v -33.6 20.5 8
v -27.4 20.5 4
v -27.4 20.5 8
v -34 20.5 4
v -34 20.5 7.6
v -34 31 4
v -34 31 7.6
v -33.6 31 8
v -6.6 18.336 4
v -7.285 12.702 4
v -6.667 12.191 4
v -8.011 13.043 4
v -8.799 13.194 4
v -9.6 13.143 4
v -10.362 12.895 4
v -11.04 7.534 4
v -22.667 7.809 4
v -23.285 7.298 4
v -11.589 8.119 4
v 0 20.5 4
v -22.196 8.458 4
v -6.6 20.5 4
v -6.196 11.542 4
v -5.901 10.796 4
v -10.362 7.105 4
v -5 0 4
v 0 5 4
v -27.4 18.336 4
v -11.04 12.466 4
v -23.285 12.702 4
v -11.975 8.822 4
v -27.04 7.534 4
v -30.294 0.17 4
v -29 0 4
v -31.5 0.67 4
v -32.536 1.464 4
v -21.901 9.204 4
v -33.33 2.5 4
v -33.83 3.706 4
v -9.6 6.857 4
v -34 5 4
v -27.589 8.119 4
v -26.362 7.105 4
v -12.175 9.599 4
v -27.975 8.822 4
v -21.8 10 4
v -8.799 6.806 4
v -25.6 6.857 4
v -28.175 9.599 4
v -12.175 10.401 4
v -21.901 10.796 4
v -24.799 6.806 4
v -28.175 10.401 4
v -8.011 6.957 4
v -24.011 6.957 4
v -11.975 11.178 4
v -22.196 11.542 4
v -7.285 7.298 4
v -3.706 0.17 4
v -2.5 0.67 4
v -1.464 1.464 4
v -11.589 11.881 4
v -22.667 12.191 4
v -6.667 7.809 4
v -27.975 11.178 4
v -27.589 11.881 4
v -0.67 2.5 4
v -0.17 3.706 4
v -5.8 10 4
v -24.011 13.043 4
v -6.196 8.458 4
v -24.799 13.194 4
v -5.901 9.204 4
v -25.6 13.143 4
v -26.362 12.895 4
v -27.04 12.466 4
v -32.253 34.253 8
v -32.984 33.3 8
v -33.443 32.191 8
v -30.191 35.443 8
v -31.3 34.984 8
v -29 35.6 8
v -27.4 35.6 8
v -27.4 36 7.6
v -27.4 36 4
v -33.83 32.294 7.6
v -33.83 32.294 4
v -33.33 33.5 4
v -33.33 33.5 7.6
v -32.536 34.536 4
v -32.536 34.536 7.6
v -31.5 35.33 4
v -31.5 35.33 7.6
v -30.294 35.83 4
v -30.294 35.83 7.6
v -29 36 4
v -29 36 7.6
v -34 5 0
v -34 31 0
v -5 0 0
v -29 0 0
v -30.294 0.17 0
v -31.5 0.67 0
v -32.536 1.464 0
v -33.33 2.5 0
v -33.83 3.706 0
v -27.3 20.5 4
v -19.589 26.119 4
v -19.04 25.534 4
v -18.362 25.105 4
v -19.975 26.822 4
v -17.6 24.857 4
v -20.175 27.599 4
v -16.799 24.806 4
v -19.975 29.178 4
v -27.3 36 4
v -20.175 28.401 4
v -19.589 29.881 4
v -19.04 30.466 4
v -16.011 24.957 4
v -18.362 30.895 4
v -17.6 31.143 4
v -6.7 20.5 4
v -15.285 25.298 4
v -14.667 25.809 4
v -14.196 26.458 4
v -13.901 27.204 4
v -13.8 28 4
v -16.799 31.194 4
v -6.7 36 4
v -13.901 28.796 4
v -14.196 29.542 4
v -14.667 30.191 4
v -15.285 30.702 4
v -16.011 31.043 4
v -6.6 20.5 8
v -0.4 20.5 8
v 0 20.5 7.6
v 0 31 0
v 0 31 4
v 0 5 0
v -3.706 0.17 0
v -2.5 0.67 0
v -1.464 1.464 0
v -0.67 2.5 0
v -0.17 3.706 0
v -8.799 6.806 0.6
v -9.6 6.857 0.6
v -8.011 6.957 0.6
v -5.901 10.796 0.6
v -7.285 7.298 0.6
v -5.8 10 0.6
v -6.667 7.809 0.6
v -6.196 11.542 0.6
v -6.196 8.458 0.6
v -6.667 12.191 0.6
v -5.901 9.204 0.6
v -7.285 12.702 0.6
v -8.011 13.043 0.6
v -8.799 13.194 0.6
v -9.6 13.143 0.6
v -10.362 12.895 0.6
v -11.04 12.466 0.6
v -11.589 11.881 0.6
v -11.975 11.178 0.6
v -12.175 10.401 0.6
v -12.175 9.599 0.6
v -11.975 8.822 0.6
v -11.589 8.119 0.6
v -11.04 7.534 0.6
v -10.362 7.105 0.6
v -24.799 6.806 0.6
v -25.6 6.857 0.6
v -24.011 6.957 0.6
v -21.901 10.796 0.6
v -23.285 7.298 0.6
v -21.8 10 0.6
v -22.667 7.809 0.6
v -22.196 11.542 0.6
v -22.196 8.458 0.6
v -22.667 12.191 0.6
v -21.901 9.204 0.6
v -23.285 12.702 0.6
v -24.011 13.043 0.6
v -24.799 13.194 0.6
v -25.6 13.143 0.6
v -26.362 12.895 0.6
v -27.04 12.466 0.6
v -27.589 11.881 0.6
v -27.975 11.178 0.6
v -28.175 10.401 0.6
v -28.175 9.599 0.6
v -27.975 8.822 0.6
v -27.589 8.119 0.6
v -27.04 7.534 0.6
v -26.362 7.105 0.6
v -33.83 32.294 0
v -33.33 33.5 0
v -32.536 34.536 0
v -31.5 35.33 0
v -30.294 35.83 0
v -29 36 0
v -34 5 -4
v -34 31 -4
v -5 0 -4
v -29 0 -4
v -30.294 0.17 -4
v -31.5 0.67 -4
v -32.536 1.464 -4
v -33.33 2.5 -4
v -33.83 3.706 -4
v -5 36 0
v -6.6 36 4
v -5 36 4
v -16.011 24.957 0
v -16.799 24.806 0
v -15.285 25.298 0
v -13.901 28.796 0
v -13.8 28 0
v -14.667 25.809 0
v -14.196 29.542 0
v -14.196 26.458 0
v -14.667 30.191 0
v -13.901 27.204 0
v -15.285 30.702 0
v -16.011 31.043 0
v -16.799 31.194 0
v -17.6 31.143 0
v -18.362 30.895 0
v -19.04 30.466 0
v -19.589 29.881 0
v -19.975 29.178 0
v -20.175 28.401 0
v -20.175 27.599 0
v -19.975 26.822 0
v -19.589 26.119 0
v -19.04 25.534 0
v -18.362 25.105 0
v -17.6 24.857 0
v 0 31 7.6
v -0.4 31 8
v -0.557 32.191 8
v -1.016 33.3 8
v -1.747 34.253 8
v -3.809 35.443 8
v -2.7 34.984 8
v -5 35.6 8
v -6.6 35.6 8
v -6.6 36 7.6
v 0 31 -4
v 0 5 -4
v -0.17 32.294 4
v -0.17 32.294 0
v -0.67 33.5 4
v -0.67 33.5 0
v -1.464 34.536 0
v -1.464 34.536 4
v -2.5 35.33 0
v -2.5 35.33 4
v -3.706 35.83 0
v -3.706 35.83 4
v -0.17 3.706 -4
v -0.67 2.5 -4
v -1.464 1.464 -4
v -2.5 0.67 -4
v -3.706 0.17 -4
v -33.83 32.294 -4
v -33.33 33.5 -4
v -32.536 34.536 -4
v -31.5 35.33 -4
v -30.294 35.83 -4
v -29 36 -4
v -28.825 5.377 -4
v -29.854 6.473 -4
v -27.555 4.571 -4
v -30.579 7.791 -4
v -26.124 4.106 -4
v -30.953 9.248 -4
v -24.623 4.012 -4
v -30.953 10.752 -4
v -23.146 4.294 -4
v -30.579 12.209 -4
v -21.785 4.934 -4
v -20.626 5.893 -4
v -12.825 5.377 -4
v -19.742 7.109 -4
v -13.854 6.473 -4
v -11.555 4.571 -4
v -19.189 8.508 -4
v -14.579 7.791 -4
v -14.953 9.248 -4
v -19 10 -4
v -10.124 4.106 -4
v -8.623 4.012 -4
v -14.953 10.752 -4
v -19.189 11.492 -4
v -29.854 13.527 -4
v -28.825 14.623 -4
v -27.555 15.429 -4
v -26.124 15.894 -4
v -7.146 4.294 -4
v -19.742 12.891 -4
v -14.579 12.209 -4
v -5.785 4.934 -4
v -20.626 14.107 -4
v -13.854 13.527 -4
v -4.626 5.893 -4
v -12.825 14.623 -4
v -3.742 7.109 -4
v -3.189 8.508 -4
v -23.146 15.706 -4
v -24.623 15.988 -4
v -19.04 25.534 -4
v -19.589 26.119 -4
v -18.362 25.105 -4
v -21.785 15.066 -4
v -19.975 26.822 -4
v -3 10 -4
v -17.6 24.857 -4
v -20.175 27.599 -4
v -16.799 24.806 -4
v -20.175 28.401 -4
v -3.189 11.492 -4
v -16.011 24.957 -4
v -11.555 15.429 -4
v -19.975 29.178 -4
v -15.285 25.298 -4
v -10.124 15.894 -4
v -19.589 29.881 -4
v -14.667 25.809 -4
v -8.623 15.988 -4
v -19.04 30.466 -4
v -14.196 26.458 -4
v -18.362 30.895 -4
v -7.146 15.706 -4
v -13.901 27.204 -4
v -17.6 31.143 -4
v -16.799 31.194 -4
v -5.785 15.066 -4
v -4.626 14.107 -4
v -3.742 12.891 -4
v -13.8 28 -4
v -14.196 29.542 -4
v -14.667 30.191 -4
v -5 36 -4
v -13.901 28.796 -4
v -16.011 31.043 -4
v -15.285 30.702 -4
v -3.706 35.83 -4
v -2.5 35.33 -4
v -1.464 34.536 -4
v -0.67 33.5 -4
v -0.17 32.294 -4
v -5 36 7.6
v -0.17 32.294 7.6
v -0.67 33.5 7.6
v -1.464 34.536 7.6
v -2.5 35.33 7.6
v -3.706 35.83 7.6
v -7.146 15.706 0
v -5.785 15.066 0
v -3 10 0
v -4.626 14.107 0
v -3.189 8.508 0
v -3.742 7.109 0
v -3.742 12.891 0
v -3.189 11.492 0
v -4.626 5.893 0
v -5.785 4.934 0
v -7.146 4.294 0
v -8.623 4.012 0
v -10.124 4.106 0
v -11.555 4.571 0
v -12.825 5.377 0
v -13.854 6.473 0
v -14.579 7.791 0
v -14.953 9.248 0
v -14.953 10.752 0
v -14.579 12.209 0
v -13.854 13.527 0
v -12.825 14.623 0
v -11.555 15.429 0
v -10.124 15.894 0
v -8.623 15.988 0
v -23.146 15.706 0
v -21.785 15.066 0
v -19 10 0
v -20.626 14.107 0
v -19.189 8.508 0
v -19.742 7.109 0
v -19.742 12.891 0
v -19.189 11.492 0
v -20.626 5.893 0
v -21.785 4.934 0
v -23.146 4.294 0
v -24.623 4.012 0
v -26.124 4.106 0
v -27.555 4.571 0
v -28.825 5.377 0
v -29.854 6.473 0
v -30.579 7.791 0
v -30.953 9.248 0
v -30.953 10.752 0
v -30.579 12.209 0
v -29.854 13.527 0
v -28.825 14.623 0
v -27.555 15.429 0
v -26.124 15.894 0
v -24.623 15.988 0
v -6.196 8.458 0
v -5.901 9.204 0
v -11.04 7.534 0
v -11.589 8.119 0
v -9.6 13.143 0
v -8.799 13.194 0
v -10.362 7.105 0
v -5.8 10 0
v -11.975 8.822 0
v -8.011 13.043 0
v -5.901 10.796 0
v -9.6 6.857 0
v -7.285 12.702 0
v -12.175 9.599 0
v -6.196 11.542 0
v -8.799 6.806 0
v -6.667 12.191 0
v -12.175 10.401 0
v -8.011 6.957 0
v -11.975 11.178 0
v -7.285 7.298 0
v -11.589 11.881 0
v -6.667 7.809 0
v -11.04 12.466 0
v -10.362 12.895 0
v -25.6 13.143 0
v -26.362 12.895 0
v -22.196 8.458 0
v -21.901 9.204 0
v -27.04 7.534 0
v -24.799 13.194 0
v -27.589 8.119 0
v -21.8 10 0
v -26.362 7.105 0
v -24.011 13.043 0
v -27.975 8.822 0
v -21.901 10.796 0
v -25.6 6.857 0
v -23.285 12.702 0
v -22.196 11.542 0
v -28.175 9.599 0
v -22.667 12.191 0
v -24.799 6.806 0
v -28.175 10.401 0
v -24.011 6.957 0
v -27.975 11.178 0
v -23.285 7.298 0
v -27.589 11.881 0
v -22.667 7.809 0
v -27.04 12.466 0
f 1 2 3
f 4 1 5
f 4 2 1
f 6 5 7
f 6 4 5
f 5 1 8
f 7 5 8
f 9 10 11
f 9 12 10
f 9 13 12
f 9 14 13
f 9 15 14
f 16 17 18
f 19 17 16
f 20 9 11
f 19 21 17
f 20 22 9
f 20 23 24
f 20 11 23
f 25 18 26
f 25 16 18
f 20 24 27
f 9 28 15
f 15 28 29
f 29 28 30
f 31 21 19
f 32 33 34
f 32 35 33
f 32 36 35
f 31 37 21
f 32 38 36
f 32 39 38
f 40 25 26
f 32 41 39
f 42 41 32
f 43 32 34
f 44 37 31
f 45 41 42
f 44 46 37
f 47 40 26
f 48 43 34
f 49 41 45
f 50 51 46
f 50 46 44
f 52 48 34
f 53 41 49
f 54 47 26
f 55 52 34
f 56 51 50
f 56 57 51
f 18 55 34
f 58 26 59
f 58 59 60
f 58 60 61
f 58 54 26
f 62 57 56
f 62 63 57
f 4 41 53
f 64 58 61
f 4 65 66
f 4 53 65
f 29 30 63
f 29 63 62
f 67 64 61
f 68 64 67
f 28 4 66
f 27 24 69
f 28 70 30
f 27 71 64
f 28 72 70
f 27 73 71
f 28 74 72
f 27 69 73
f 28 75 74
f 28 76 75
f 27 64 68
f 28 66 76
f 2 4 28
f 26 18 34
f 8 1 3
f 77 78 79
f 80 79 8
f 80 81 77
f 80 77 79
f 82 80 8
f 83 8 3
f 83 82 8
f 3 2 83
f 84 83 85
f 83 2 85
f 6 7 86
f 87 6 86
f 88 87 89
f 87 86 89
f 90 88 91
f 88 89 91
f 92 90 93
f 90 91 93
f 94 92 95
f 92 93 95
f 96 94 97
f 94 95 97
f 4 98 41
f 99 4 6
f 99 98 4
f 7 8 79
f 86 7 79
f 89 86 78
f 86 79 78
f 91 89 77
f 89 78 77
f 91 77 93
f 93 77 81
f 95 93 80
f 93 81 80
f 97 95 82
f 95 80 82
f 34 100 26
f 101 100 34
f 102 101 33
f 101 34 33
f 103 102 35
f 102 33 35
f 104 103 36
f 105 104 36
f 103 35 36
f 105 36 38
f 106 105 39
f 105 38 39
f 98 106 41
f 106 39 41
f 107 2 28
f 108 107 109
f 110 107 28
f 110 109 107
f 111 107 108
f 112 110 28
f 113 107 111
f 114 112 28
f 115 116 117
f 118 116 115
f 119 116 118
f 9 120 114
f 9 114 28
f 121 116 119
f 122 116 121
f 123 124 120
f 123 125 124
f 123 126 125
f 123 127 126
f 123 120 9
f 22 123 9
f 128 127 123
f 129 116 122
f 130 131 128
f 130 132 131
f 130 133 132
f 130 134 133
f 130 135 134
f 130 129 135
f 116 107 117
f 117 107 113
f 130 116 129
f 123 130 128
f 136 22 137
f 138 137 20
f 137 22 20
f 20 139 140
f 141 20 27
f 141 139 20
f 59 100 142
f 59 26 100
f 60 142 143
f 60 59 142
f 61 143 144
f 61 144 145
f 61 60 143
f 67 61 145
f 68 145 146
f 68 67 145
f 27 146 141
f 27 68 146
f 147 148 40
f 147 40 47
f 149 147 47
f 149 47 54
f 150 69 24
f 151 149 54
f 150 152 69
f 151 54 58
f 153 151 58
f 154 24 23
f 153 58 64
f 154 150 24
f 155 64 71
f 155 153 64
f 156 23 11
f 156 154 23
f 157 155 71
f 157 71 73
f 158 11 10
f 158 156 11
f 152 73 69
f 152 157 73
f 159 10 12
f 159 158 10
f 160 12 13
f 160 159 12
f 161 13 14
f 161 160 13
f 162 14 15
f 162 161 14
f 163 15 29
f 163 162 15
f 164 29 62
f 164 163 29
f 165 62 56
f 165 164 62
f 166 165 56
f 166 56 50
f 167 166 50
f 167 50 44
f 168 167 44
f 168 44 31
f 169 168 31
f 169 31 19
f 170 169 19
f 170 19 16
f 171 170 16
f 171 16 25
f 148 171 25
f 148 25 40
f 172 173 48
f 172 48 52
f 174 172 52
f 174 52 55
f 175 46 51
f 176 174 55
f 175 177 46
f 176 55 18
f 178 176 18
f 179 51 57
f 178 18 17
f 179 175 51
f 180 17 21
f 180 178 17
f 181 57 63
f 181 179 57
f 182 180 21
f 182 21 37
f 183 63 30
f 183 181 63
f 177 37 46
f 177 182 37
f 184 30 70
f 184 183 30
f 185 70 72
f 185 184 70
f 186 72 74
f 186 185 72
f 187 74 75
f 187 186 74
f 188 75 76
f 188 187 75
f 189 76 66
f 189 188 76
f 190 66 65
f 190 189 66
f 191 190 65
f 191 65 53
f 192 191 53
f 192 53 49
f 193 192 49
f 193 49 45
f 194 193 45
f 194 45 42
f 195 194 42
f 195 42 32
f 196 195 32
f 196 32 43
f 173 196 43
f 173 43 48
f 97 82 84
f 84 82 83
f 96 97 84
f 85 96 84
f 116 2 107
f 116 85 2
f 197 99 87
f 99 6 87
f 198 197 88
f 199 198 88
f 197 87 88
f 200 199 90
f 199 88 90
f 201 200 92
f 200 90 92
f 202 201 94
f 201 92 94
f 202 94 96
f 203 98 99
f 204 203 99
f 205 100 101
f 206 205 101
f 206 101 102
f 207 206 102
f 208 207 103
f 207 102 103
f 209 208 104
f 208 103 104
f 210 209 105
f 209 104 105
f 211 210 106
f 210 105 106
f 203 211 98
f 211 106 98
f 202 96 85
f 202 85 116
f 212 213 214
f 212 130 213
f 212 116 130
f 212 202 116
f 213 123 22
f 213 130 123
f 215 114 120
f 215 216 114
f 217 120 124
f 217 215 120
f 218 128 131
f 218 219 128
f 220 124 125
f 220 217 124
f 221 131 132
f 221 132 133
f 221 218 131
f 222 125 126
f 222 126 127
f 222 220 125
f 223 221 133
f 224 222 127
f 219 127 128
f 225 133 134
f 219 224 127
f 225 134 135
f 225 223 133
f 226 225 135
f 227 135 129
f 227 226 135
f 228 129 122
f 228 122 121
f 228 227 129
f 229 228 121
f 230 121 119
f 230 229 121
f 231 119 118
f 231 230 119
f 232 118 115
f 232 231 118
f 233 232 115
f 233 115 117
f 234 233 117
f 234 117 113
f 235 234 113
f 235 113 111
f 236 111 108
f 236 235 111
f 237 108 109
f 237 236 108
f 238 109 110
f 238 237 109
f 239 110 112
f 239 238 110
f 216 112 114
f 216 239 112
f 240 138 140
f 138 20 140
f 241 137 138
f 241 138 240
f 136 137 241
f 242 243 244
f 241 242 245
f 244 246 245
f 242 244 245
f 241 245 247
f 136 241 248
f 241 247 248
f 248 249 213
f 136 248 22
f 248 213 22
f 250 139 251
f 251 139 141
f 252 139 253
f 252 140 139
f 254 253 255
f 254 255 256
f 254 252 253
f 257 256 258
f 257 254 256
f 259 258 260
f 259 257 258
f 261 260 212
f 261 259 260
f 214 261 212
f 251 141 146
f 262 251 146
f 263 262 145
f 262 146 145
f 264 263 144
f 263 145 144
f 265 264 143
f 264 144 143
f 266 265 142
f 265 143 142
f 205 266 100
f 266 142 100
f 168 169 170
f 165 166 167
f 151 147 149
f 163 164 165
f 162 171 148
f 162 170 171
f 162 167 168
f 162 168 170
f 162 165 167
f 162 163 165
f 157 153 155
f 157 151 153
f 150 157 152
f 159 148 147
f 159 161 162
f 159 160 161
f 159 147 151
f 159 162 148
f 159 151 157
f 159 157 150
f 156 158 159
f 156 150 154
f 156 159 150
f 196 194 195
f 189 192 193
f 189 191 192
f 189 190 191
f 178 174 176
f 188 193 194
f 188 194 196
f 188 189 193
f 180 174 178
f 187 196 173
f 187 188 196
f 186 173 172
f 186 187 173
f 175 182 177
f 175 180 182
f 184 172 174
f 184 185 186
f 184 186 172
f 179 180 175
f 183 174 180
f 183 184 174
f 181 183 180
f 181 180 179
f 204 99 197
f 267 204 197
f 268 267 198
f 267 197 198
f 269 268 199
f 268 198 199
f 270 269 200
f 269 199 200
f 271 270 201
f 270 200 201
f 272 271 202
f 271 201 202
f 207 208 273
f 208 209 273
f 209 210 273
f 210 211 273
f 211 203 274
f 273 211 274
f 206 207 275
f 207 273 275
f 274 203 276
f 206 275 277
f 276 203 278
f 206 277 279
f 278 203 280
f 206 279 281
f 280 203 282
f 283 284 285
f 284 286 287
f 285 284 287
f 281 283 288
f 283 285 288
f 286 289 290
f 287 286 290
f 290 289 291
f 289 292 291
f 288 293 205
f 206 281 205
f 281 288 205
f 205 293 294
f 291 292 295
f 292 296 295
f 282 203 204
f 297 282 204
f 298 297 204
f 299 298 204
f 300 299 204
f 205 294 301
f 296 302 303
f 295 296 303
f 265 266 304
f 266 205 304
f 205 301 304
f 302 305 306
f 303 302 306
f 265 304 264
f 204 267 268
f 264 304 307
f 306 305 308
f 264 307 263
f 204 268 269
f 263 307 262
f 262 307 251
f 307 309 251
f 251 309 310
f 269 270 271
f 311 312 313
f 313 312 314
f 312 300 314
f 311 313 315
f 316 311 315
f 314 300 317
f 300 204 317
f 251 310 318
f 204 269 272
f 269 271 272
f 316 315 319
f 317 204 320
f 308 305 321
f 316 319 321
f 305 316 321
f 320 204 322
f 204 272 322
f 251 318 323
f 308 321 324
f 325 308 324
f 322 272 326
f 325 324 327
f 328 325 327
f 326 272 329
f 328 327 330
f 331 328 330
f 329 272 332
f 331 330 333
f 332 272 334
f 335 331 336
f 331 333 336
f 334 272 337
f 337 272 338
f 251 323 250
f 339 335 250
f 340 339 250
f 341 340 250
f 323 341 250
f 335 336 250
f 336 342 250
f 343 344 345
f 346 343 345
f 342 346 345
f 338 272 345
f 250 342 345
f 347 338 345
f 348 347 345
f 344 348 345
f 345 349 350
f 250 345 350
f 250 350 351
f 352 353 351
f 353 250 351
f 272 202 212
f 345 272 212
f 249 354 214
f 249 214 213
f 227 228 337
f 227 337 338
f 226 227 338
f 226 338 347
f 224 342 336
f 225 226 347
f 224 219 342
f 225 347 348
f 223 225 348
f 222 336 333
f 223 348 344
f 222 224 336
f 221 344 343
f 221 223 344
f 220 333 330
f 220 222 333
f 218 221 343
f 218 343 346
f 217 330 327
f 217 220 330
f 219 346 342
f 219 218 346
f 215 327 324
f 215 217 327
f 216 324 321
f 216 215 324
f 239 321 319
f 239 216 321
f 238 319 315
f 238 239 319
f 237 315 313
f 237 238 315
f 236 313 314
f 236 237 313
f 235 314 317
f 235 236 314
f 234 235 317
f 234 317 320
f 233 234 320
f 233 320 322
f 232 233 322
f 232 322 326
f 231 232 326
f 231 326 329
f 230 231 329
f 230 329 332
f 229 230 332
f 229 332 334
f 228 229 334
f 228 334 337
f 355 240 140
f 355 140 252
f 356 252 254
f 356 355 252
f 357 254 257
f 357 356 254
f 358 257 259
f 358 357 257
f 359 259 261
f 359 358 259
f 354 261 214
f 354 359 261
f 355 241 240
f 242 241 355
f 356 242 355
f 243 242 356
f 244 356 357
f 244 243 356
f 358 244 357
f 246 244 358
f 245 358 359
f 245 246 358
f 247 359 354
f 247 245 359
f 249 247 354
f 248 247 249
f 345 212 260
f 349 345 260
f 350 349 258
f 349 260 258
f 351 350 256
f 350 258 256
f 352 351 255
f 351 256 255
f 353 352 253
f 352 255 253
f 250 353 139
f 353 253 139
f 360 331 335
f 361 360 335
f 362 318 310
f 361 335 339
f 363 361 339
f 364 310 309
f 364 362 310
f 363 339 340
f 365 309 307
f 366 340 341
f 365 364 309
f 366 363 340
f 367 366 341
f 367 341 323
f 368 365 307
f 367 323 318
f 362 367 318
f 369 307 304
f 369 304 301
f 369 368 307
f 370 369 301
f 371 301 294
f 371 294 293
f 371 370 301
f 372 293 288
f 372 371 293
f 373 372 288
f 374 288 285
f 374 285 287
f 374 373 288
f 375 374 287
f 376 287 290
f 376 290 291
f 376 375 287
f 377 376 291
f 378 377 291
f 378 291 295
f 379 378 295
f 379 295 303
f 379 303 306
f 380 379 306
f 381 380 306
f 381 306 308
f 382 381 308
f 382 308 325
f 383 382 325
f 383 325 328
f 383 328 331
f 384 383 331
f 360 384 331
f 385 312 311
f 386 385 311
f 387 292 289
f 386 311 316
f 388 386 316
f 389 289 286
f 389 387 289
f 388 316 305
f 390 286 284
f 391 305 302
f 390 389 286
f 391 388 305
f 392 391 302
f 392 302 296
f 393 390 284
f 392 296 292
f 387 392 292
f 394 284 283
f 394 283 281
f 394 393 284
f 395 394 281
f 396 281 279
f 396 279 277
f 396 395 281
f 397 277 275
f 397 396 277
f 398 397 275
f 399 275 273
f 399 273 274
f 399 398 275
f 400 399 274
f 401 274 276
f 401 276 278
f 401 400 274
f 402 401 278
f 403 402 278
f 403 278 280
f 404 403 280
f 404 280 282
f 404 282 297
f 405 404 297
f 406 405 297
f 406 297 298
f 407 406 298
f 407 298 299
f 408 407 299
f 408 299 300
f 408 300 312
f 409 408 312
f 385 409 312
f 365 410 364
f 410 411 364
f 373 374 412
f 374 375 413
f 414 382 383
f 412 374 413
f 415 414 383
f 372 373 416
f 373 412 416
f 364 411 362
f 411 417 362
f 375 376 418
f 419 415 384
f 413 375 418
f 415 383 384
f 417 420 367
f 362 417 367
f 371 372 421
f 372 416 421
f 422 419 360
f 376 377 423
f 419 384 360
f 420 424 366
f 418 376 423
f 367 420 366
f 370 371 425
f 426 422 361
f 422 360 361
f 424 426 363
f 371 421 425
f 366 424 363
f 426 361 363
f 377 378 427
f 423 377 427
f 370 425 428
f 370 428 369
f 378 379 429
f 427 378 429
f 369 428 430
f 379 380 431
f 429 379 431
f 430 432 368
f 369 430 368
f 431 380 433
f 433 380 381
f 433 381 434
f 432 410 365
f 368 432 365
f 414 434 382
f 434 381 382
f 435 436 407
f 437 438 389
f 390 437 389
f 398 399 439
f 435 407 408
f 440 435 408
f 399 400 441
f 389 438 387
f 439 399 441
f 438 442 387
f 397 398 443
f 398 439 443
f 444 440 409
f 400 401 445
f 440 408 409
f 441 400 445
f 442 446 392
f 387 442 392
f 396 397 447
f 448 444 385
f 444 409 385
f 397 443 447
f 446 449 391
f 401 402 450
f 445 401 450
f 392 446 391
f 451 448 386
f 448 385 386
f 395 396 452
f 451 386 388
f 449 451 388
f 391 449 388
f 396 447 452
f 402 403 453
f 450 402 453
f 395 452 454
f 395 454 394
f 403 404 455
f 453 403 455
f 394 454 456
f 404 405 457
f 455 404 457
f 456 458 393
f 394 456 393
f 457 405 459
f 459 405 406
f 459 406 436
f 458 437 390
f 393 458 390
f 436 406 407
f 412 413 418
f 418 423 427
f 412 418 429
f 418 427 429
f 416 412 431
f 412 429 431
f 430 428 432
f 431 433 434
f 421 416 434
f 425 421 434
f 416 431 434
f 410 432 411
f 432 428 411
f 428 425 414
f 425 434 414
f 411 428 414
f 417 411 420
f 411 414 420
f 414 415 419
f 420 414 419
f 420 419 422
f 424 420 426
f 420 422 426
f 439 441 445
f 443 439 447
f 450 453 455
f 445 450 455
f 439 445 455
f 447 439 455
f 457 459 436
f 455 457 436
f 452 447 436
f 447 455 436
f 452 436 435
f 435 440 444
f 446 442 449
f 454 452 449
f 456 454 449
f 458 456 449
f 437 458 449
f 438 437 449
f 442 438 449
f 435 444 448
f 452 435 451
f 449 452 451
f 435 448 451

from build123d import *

# Parameters (mm, degrees)
SKETCH_W      = 34
SKETCH_H      = 36
SKETCH_R      = 3.2
PAD_DEPTH     = 4
SKETCH001_W   = 6.7
SKETCH001_H   = 15.5
PAD001_DEPTH  = 4
FILLET_R      = 5
SKETCH002_R   = 3.2
SKETCH002_R_2 = 6
PAD002_DEPTH  = 4
SKETCH003_R   = 3.2
PAD003_DEPTH  = 0.6
SKETCH004_W   = 20.8
SKETCH004_H   = 19.619243
POCKET_DEPTH  = 4
CHAMFER_SIZE  = 0.4


with BuildPart() as part:
    # Sketch → Pad (new body)
    with BuildSketch(Plane.XY):
        with Locations((-17, 18)):
            Rectangle(SKETCH_W, SKETCH_H)
        with Locations((-17, 28)):
            Circle(SKETCH_R, mode=Mode.SUBTRACT)
        with Locations((-25, 10)):
            Circle(SKETCH_R, mode=Mode.SUBTRACT)
        with Locations((-9, 10)):
            Circle(SKETCH_R, mode=Mode.SUBTRACT)
    extrude(amount=PAD_DEPTH)

    # Sketch001 → Pad001 (new body)
    with BuildSketch(Plane.XY.offset(4)):
        with Locations((-30.65, 28.25)):
            Rectangle(SKETCH001_W, SKETCH001_H)
        with Locations((-3.35, 28.25)):
            Rectangle(SKETCH001_W, SKETCH001_H)
    extrude(amount=PAD001_DEPTH)

    # Fillet
    fillet_edges = [part.edges().sort_by_distance(p)[0] for p in [
        (-34, 0, 2),
        (0, 0, 2),
        (0, 36, 2),
        (0, 36, 6),
        (-34, 36, 6),
        (-34, 36, 2),
    ]]
    fillet(fillet_edges, radius=FILLET_R)

    # Sketch002 → Pad002 (new body)
    with BuildSketch(Plane(origin=(0, 0, 0), x_dir=(1, 0, 0), z_dir=(0, 0, -1))):
        with BuildLine():
            Line((-5, 0), (-29, 0))
            ThreePointArc((-29, 0), (-32.535534, -1.464466), (-34, -5))
            Line((-34, -5), (-34, -31))
            ThreePointArc((-34, -31), (-32.535534, -34.535534), (-29, -36))
            Line((-29, -36), (-5, -36))
            ThreePointArc((-5, -36), (-1.464466, -34.535534), (0, -31))
            Line((0, -31), (0, -5))
            ThreePointArc((0, -5), (-1.464466, -1.464466), (-5, 0))
        make_face()
        with Locations((-17, -28)):
            Circle(SKETCH002_R, mode=Mode.SUBTRACT)
        with Locations((-25, -10)):
            Circle(SKETCH002_R_2, mode=Mode.SUBTRACT)
        with Locations((-9, -10)):
            Circle(SKETCH002_R_2, mode=Mode.SUBTRACT)
    extrude(amount=PAD002_DEPTH)

    # Sketch003 → Pad003 (new body)
    with BuildSketch(Plane(origin=(0, 0, 0), x_dir=(1, 0, 0), z_dir=(0, 0, -1))):
        with Locations((-25, -10)):
            Circle(SKETCH003_R)
        with Locations((-9, -10)):
            Circle(SKETCH003_R)
    extrude(amount=-PAD003_DEPTH)

    # Sketch004 → Pocket (cut)
    with BuildSketch(Plane.XY.offset(4)):
        with Locations((-17, 28.145761)):
            Rectangle(SKETCH004_W, SKETCH004_H)
    extrude(amount=POCKET_DEPTH, mode=Mode.SUBTRACT)

    # Chamfer
    chamfer_edges = [part.edges().sort_by_distance(p)[0] for p in [
        (0, 25.75, 8),
        (-1.464466, 34.535534, 8),
        (-5.8, 36, 8),
        (-28.2, 36, 8),
        (-32.535534, 34.535534, 8),
        (-34, 25.75, 8),
    ]]
    chamfer(chamfer_edges, length=CHAMFER_SIZE)


solid = part.part
